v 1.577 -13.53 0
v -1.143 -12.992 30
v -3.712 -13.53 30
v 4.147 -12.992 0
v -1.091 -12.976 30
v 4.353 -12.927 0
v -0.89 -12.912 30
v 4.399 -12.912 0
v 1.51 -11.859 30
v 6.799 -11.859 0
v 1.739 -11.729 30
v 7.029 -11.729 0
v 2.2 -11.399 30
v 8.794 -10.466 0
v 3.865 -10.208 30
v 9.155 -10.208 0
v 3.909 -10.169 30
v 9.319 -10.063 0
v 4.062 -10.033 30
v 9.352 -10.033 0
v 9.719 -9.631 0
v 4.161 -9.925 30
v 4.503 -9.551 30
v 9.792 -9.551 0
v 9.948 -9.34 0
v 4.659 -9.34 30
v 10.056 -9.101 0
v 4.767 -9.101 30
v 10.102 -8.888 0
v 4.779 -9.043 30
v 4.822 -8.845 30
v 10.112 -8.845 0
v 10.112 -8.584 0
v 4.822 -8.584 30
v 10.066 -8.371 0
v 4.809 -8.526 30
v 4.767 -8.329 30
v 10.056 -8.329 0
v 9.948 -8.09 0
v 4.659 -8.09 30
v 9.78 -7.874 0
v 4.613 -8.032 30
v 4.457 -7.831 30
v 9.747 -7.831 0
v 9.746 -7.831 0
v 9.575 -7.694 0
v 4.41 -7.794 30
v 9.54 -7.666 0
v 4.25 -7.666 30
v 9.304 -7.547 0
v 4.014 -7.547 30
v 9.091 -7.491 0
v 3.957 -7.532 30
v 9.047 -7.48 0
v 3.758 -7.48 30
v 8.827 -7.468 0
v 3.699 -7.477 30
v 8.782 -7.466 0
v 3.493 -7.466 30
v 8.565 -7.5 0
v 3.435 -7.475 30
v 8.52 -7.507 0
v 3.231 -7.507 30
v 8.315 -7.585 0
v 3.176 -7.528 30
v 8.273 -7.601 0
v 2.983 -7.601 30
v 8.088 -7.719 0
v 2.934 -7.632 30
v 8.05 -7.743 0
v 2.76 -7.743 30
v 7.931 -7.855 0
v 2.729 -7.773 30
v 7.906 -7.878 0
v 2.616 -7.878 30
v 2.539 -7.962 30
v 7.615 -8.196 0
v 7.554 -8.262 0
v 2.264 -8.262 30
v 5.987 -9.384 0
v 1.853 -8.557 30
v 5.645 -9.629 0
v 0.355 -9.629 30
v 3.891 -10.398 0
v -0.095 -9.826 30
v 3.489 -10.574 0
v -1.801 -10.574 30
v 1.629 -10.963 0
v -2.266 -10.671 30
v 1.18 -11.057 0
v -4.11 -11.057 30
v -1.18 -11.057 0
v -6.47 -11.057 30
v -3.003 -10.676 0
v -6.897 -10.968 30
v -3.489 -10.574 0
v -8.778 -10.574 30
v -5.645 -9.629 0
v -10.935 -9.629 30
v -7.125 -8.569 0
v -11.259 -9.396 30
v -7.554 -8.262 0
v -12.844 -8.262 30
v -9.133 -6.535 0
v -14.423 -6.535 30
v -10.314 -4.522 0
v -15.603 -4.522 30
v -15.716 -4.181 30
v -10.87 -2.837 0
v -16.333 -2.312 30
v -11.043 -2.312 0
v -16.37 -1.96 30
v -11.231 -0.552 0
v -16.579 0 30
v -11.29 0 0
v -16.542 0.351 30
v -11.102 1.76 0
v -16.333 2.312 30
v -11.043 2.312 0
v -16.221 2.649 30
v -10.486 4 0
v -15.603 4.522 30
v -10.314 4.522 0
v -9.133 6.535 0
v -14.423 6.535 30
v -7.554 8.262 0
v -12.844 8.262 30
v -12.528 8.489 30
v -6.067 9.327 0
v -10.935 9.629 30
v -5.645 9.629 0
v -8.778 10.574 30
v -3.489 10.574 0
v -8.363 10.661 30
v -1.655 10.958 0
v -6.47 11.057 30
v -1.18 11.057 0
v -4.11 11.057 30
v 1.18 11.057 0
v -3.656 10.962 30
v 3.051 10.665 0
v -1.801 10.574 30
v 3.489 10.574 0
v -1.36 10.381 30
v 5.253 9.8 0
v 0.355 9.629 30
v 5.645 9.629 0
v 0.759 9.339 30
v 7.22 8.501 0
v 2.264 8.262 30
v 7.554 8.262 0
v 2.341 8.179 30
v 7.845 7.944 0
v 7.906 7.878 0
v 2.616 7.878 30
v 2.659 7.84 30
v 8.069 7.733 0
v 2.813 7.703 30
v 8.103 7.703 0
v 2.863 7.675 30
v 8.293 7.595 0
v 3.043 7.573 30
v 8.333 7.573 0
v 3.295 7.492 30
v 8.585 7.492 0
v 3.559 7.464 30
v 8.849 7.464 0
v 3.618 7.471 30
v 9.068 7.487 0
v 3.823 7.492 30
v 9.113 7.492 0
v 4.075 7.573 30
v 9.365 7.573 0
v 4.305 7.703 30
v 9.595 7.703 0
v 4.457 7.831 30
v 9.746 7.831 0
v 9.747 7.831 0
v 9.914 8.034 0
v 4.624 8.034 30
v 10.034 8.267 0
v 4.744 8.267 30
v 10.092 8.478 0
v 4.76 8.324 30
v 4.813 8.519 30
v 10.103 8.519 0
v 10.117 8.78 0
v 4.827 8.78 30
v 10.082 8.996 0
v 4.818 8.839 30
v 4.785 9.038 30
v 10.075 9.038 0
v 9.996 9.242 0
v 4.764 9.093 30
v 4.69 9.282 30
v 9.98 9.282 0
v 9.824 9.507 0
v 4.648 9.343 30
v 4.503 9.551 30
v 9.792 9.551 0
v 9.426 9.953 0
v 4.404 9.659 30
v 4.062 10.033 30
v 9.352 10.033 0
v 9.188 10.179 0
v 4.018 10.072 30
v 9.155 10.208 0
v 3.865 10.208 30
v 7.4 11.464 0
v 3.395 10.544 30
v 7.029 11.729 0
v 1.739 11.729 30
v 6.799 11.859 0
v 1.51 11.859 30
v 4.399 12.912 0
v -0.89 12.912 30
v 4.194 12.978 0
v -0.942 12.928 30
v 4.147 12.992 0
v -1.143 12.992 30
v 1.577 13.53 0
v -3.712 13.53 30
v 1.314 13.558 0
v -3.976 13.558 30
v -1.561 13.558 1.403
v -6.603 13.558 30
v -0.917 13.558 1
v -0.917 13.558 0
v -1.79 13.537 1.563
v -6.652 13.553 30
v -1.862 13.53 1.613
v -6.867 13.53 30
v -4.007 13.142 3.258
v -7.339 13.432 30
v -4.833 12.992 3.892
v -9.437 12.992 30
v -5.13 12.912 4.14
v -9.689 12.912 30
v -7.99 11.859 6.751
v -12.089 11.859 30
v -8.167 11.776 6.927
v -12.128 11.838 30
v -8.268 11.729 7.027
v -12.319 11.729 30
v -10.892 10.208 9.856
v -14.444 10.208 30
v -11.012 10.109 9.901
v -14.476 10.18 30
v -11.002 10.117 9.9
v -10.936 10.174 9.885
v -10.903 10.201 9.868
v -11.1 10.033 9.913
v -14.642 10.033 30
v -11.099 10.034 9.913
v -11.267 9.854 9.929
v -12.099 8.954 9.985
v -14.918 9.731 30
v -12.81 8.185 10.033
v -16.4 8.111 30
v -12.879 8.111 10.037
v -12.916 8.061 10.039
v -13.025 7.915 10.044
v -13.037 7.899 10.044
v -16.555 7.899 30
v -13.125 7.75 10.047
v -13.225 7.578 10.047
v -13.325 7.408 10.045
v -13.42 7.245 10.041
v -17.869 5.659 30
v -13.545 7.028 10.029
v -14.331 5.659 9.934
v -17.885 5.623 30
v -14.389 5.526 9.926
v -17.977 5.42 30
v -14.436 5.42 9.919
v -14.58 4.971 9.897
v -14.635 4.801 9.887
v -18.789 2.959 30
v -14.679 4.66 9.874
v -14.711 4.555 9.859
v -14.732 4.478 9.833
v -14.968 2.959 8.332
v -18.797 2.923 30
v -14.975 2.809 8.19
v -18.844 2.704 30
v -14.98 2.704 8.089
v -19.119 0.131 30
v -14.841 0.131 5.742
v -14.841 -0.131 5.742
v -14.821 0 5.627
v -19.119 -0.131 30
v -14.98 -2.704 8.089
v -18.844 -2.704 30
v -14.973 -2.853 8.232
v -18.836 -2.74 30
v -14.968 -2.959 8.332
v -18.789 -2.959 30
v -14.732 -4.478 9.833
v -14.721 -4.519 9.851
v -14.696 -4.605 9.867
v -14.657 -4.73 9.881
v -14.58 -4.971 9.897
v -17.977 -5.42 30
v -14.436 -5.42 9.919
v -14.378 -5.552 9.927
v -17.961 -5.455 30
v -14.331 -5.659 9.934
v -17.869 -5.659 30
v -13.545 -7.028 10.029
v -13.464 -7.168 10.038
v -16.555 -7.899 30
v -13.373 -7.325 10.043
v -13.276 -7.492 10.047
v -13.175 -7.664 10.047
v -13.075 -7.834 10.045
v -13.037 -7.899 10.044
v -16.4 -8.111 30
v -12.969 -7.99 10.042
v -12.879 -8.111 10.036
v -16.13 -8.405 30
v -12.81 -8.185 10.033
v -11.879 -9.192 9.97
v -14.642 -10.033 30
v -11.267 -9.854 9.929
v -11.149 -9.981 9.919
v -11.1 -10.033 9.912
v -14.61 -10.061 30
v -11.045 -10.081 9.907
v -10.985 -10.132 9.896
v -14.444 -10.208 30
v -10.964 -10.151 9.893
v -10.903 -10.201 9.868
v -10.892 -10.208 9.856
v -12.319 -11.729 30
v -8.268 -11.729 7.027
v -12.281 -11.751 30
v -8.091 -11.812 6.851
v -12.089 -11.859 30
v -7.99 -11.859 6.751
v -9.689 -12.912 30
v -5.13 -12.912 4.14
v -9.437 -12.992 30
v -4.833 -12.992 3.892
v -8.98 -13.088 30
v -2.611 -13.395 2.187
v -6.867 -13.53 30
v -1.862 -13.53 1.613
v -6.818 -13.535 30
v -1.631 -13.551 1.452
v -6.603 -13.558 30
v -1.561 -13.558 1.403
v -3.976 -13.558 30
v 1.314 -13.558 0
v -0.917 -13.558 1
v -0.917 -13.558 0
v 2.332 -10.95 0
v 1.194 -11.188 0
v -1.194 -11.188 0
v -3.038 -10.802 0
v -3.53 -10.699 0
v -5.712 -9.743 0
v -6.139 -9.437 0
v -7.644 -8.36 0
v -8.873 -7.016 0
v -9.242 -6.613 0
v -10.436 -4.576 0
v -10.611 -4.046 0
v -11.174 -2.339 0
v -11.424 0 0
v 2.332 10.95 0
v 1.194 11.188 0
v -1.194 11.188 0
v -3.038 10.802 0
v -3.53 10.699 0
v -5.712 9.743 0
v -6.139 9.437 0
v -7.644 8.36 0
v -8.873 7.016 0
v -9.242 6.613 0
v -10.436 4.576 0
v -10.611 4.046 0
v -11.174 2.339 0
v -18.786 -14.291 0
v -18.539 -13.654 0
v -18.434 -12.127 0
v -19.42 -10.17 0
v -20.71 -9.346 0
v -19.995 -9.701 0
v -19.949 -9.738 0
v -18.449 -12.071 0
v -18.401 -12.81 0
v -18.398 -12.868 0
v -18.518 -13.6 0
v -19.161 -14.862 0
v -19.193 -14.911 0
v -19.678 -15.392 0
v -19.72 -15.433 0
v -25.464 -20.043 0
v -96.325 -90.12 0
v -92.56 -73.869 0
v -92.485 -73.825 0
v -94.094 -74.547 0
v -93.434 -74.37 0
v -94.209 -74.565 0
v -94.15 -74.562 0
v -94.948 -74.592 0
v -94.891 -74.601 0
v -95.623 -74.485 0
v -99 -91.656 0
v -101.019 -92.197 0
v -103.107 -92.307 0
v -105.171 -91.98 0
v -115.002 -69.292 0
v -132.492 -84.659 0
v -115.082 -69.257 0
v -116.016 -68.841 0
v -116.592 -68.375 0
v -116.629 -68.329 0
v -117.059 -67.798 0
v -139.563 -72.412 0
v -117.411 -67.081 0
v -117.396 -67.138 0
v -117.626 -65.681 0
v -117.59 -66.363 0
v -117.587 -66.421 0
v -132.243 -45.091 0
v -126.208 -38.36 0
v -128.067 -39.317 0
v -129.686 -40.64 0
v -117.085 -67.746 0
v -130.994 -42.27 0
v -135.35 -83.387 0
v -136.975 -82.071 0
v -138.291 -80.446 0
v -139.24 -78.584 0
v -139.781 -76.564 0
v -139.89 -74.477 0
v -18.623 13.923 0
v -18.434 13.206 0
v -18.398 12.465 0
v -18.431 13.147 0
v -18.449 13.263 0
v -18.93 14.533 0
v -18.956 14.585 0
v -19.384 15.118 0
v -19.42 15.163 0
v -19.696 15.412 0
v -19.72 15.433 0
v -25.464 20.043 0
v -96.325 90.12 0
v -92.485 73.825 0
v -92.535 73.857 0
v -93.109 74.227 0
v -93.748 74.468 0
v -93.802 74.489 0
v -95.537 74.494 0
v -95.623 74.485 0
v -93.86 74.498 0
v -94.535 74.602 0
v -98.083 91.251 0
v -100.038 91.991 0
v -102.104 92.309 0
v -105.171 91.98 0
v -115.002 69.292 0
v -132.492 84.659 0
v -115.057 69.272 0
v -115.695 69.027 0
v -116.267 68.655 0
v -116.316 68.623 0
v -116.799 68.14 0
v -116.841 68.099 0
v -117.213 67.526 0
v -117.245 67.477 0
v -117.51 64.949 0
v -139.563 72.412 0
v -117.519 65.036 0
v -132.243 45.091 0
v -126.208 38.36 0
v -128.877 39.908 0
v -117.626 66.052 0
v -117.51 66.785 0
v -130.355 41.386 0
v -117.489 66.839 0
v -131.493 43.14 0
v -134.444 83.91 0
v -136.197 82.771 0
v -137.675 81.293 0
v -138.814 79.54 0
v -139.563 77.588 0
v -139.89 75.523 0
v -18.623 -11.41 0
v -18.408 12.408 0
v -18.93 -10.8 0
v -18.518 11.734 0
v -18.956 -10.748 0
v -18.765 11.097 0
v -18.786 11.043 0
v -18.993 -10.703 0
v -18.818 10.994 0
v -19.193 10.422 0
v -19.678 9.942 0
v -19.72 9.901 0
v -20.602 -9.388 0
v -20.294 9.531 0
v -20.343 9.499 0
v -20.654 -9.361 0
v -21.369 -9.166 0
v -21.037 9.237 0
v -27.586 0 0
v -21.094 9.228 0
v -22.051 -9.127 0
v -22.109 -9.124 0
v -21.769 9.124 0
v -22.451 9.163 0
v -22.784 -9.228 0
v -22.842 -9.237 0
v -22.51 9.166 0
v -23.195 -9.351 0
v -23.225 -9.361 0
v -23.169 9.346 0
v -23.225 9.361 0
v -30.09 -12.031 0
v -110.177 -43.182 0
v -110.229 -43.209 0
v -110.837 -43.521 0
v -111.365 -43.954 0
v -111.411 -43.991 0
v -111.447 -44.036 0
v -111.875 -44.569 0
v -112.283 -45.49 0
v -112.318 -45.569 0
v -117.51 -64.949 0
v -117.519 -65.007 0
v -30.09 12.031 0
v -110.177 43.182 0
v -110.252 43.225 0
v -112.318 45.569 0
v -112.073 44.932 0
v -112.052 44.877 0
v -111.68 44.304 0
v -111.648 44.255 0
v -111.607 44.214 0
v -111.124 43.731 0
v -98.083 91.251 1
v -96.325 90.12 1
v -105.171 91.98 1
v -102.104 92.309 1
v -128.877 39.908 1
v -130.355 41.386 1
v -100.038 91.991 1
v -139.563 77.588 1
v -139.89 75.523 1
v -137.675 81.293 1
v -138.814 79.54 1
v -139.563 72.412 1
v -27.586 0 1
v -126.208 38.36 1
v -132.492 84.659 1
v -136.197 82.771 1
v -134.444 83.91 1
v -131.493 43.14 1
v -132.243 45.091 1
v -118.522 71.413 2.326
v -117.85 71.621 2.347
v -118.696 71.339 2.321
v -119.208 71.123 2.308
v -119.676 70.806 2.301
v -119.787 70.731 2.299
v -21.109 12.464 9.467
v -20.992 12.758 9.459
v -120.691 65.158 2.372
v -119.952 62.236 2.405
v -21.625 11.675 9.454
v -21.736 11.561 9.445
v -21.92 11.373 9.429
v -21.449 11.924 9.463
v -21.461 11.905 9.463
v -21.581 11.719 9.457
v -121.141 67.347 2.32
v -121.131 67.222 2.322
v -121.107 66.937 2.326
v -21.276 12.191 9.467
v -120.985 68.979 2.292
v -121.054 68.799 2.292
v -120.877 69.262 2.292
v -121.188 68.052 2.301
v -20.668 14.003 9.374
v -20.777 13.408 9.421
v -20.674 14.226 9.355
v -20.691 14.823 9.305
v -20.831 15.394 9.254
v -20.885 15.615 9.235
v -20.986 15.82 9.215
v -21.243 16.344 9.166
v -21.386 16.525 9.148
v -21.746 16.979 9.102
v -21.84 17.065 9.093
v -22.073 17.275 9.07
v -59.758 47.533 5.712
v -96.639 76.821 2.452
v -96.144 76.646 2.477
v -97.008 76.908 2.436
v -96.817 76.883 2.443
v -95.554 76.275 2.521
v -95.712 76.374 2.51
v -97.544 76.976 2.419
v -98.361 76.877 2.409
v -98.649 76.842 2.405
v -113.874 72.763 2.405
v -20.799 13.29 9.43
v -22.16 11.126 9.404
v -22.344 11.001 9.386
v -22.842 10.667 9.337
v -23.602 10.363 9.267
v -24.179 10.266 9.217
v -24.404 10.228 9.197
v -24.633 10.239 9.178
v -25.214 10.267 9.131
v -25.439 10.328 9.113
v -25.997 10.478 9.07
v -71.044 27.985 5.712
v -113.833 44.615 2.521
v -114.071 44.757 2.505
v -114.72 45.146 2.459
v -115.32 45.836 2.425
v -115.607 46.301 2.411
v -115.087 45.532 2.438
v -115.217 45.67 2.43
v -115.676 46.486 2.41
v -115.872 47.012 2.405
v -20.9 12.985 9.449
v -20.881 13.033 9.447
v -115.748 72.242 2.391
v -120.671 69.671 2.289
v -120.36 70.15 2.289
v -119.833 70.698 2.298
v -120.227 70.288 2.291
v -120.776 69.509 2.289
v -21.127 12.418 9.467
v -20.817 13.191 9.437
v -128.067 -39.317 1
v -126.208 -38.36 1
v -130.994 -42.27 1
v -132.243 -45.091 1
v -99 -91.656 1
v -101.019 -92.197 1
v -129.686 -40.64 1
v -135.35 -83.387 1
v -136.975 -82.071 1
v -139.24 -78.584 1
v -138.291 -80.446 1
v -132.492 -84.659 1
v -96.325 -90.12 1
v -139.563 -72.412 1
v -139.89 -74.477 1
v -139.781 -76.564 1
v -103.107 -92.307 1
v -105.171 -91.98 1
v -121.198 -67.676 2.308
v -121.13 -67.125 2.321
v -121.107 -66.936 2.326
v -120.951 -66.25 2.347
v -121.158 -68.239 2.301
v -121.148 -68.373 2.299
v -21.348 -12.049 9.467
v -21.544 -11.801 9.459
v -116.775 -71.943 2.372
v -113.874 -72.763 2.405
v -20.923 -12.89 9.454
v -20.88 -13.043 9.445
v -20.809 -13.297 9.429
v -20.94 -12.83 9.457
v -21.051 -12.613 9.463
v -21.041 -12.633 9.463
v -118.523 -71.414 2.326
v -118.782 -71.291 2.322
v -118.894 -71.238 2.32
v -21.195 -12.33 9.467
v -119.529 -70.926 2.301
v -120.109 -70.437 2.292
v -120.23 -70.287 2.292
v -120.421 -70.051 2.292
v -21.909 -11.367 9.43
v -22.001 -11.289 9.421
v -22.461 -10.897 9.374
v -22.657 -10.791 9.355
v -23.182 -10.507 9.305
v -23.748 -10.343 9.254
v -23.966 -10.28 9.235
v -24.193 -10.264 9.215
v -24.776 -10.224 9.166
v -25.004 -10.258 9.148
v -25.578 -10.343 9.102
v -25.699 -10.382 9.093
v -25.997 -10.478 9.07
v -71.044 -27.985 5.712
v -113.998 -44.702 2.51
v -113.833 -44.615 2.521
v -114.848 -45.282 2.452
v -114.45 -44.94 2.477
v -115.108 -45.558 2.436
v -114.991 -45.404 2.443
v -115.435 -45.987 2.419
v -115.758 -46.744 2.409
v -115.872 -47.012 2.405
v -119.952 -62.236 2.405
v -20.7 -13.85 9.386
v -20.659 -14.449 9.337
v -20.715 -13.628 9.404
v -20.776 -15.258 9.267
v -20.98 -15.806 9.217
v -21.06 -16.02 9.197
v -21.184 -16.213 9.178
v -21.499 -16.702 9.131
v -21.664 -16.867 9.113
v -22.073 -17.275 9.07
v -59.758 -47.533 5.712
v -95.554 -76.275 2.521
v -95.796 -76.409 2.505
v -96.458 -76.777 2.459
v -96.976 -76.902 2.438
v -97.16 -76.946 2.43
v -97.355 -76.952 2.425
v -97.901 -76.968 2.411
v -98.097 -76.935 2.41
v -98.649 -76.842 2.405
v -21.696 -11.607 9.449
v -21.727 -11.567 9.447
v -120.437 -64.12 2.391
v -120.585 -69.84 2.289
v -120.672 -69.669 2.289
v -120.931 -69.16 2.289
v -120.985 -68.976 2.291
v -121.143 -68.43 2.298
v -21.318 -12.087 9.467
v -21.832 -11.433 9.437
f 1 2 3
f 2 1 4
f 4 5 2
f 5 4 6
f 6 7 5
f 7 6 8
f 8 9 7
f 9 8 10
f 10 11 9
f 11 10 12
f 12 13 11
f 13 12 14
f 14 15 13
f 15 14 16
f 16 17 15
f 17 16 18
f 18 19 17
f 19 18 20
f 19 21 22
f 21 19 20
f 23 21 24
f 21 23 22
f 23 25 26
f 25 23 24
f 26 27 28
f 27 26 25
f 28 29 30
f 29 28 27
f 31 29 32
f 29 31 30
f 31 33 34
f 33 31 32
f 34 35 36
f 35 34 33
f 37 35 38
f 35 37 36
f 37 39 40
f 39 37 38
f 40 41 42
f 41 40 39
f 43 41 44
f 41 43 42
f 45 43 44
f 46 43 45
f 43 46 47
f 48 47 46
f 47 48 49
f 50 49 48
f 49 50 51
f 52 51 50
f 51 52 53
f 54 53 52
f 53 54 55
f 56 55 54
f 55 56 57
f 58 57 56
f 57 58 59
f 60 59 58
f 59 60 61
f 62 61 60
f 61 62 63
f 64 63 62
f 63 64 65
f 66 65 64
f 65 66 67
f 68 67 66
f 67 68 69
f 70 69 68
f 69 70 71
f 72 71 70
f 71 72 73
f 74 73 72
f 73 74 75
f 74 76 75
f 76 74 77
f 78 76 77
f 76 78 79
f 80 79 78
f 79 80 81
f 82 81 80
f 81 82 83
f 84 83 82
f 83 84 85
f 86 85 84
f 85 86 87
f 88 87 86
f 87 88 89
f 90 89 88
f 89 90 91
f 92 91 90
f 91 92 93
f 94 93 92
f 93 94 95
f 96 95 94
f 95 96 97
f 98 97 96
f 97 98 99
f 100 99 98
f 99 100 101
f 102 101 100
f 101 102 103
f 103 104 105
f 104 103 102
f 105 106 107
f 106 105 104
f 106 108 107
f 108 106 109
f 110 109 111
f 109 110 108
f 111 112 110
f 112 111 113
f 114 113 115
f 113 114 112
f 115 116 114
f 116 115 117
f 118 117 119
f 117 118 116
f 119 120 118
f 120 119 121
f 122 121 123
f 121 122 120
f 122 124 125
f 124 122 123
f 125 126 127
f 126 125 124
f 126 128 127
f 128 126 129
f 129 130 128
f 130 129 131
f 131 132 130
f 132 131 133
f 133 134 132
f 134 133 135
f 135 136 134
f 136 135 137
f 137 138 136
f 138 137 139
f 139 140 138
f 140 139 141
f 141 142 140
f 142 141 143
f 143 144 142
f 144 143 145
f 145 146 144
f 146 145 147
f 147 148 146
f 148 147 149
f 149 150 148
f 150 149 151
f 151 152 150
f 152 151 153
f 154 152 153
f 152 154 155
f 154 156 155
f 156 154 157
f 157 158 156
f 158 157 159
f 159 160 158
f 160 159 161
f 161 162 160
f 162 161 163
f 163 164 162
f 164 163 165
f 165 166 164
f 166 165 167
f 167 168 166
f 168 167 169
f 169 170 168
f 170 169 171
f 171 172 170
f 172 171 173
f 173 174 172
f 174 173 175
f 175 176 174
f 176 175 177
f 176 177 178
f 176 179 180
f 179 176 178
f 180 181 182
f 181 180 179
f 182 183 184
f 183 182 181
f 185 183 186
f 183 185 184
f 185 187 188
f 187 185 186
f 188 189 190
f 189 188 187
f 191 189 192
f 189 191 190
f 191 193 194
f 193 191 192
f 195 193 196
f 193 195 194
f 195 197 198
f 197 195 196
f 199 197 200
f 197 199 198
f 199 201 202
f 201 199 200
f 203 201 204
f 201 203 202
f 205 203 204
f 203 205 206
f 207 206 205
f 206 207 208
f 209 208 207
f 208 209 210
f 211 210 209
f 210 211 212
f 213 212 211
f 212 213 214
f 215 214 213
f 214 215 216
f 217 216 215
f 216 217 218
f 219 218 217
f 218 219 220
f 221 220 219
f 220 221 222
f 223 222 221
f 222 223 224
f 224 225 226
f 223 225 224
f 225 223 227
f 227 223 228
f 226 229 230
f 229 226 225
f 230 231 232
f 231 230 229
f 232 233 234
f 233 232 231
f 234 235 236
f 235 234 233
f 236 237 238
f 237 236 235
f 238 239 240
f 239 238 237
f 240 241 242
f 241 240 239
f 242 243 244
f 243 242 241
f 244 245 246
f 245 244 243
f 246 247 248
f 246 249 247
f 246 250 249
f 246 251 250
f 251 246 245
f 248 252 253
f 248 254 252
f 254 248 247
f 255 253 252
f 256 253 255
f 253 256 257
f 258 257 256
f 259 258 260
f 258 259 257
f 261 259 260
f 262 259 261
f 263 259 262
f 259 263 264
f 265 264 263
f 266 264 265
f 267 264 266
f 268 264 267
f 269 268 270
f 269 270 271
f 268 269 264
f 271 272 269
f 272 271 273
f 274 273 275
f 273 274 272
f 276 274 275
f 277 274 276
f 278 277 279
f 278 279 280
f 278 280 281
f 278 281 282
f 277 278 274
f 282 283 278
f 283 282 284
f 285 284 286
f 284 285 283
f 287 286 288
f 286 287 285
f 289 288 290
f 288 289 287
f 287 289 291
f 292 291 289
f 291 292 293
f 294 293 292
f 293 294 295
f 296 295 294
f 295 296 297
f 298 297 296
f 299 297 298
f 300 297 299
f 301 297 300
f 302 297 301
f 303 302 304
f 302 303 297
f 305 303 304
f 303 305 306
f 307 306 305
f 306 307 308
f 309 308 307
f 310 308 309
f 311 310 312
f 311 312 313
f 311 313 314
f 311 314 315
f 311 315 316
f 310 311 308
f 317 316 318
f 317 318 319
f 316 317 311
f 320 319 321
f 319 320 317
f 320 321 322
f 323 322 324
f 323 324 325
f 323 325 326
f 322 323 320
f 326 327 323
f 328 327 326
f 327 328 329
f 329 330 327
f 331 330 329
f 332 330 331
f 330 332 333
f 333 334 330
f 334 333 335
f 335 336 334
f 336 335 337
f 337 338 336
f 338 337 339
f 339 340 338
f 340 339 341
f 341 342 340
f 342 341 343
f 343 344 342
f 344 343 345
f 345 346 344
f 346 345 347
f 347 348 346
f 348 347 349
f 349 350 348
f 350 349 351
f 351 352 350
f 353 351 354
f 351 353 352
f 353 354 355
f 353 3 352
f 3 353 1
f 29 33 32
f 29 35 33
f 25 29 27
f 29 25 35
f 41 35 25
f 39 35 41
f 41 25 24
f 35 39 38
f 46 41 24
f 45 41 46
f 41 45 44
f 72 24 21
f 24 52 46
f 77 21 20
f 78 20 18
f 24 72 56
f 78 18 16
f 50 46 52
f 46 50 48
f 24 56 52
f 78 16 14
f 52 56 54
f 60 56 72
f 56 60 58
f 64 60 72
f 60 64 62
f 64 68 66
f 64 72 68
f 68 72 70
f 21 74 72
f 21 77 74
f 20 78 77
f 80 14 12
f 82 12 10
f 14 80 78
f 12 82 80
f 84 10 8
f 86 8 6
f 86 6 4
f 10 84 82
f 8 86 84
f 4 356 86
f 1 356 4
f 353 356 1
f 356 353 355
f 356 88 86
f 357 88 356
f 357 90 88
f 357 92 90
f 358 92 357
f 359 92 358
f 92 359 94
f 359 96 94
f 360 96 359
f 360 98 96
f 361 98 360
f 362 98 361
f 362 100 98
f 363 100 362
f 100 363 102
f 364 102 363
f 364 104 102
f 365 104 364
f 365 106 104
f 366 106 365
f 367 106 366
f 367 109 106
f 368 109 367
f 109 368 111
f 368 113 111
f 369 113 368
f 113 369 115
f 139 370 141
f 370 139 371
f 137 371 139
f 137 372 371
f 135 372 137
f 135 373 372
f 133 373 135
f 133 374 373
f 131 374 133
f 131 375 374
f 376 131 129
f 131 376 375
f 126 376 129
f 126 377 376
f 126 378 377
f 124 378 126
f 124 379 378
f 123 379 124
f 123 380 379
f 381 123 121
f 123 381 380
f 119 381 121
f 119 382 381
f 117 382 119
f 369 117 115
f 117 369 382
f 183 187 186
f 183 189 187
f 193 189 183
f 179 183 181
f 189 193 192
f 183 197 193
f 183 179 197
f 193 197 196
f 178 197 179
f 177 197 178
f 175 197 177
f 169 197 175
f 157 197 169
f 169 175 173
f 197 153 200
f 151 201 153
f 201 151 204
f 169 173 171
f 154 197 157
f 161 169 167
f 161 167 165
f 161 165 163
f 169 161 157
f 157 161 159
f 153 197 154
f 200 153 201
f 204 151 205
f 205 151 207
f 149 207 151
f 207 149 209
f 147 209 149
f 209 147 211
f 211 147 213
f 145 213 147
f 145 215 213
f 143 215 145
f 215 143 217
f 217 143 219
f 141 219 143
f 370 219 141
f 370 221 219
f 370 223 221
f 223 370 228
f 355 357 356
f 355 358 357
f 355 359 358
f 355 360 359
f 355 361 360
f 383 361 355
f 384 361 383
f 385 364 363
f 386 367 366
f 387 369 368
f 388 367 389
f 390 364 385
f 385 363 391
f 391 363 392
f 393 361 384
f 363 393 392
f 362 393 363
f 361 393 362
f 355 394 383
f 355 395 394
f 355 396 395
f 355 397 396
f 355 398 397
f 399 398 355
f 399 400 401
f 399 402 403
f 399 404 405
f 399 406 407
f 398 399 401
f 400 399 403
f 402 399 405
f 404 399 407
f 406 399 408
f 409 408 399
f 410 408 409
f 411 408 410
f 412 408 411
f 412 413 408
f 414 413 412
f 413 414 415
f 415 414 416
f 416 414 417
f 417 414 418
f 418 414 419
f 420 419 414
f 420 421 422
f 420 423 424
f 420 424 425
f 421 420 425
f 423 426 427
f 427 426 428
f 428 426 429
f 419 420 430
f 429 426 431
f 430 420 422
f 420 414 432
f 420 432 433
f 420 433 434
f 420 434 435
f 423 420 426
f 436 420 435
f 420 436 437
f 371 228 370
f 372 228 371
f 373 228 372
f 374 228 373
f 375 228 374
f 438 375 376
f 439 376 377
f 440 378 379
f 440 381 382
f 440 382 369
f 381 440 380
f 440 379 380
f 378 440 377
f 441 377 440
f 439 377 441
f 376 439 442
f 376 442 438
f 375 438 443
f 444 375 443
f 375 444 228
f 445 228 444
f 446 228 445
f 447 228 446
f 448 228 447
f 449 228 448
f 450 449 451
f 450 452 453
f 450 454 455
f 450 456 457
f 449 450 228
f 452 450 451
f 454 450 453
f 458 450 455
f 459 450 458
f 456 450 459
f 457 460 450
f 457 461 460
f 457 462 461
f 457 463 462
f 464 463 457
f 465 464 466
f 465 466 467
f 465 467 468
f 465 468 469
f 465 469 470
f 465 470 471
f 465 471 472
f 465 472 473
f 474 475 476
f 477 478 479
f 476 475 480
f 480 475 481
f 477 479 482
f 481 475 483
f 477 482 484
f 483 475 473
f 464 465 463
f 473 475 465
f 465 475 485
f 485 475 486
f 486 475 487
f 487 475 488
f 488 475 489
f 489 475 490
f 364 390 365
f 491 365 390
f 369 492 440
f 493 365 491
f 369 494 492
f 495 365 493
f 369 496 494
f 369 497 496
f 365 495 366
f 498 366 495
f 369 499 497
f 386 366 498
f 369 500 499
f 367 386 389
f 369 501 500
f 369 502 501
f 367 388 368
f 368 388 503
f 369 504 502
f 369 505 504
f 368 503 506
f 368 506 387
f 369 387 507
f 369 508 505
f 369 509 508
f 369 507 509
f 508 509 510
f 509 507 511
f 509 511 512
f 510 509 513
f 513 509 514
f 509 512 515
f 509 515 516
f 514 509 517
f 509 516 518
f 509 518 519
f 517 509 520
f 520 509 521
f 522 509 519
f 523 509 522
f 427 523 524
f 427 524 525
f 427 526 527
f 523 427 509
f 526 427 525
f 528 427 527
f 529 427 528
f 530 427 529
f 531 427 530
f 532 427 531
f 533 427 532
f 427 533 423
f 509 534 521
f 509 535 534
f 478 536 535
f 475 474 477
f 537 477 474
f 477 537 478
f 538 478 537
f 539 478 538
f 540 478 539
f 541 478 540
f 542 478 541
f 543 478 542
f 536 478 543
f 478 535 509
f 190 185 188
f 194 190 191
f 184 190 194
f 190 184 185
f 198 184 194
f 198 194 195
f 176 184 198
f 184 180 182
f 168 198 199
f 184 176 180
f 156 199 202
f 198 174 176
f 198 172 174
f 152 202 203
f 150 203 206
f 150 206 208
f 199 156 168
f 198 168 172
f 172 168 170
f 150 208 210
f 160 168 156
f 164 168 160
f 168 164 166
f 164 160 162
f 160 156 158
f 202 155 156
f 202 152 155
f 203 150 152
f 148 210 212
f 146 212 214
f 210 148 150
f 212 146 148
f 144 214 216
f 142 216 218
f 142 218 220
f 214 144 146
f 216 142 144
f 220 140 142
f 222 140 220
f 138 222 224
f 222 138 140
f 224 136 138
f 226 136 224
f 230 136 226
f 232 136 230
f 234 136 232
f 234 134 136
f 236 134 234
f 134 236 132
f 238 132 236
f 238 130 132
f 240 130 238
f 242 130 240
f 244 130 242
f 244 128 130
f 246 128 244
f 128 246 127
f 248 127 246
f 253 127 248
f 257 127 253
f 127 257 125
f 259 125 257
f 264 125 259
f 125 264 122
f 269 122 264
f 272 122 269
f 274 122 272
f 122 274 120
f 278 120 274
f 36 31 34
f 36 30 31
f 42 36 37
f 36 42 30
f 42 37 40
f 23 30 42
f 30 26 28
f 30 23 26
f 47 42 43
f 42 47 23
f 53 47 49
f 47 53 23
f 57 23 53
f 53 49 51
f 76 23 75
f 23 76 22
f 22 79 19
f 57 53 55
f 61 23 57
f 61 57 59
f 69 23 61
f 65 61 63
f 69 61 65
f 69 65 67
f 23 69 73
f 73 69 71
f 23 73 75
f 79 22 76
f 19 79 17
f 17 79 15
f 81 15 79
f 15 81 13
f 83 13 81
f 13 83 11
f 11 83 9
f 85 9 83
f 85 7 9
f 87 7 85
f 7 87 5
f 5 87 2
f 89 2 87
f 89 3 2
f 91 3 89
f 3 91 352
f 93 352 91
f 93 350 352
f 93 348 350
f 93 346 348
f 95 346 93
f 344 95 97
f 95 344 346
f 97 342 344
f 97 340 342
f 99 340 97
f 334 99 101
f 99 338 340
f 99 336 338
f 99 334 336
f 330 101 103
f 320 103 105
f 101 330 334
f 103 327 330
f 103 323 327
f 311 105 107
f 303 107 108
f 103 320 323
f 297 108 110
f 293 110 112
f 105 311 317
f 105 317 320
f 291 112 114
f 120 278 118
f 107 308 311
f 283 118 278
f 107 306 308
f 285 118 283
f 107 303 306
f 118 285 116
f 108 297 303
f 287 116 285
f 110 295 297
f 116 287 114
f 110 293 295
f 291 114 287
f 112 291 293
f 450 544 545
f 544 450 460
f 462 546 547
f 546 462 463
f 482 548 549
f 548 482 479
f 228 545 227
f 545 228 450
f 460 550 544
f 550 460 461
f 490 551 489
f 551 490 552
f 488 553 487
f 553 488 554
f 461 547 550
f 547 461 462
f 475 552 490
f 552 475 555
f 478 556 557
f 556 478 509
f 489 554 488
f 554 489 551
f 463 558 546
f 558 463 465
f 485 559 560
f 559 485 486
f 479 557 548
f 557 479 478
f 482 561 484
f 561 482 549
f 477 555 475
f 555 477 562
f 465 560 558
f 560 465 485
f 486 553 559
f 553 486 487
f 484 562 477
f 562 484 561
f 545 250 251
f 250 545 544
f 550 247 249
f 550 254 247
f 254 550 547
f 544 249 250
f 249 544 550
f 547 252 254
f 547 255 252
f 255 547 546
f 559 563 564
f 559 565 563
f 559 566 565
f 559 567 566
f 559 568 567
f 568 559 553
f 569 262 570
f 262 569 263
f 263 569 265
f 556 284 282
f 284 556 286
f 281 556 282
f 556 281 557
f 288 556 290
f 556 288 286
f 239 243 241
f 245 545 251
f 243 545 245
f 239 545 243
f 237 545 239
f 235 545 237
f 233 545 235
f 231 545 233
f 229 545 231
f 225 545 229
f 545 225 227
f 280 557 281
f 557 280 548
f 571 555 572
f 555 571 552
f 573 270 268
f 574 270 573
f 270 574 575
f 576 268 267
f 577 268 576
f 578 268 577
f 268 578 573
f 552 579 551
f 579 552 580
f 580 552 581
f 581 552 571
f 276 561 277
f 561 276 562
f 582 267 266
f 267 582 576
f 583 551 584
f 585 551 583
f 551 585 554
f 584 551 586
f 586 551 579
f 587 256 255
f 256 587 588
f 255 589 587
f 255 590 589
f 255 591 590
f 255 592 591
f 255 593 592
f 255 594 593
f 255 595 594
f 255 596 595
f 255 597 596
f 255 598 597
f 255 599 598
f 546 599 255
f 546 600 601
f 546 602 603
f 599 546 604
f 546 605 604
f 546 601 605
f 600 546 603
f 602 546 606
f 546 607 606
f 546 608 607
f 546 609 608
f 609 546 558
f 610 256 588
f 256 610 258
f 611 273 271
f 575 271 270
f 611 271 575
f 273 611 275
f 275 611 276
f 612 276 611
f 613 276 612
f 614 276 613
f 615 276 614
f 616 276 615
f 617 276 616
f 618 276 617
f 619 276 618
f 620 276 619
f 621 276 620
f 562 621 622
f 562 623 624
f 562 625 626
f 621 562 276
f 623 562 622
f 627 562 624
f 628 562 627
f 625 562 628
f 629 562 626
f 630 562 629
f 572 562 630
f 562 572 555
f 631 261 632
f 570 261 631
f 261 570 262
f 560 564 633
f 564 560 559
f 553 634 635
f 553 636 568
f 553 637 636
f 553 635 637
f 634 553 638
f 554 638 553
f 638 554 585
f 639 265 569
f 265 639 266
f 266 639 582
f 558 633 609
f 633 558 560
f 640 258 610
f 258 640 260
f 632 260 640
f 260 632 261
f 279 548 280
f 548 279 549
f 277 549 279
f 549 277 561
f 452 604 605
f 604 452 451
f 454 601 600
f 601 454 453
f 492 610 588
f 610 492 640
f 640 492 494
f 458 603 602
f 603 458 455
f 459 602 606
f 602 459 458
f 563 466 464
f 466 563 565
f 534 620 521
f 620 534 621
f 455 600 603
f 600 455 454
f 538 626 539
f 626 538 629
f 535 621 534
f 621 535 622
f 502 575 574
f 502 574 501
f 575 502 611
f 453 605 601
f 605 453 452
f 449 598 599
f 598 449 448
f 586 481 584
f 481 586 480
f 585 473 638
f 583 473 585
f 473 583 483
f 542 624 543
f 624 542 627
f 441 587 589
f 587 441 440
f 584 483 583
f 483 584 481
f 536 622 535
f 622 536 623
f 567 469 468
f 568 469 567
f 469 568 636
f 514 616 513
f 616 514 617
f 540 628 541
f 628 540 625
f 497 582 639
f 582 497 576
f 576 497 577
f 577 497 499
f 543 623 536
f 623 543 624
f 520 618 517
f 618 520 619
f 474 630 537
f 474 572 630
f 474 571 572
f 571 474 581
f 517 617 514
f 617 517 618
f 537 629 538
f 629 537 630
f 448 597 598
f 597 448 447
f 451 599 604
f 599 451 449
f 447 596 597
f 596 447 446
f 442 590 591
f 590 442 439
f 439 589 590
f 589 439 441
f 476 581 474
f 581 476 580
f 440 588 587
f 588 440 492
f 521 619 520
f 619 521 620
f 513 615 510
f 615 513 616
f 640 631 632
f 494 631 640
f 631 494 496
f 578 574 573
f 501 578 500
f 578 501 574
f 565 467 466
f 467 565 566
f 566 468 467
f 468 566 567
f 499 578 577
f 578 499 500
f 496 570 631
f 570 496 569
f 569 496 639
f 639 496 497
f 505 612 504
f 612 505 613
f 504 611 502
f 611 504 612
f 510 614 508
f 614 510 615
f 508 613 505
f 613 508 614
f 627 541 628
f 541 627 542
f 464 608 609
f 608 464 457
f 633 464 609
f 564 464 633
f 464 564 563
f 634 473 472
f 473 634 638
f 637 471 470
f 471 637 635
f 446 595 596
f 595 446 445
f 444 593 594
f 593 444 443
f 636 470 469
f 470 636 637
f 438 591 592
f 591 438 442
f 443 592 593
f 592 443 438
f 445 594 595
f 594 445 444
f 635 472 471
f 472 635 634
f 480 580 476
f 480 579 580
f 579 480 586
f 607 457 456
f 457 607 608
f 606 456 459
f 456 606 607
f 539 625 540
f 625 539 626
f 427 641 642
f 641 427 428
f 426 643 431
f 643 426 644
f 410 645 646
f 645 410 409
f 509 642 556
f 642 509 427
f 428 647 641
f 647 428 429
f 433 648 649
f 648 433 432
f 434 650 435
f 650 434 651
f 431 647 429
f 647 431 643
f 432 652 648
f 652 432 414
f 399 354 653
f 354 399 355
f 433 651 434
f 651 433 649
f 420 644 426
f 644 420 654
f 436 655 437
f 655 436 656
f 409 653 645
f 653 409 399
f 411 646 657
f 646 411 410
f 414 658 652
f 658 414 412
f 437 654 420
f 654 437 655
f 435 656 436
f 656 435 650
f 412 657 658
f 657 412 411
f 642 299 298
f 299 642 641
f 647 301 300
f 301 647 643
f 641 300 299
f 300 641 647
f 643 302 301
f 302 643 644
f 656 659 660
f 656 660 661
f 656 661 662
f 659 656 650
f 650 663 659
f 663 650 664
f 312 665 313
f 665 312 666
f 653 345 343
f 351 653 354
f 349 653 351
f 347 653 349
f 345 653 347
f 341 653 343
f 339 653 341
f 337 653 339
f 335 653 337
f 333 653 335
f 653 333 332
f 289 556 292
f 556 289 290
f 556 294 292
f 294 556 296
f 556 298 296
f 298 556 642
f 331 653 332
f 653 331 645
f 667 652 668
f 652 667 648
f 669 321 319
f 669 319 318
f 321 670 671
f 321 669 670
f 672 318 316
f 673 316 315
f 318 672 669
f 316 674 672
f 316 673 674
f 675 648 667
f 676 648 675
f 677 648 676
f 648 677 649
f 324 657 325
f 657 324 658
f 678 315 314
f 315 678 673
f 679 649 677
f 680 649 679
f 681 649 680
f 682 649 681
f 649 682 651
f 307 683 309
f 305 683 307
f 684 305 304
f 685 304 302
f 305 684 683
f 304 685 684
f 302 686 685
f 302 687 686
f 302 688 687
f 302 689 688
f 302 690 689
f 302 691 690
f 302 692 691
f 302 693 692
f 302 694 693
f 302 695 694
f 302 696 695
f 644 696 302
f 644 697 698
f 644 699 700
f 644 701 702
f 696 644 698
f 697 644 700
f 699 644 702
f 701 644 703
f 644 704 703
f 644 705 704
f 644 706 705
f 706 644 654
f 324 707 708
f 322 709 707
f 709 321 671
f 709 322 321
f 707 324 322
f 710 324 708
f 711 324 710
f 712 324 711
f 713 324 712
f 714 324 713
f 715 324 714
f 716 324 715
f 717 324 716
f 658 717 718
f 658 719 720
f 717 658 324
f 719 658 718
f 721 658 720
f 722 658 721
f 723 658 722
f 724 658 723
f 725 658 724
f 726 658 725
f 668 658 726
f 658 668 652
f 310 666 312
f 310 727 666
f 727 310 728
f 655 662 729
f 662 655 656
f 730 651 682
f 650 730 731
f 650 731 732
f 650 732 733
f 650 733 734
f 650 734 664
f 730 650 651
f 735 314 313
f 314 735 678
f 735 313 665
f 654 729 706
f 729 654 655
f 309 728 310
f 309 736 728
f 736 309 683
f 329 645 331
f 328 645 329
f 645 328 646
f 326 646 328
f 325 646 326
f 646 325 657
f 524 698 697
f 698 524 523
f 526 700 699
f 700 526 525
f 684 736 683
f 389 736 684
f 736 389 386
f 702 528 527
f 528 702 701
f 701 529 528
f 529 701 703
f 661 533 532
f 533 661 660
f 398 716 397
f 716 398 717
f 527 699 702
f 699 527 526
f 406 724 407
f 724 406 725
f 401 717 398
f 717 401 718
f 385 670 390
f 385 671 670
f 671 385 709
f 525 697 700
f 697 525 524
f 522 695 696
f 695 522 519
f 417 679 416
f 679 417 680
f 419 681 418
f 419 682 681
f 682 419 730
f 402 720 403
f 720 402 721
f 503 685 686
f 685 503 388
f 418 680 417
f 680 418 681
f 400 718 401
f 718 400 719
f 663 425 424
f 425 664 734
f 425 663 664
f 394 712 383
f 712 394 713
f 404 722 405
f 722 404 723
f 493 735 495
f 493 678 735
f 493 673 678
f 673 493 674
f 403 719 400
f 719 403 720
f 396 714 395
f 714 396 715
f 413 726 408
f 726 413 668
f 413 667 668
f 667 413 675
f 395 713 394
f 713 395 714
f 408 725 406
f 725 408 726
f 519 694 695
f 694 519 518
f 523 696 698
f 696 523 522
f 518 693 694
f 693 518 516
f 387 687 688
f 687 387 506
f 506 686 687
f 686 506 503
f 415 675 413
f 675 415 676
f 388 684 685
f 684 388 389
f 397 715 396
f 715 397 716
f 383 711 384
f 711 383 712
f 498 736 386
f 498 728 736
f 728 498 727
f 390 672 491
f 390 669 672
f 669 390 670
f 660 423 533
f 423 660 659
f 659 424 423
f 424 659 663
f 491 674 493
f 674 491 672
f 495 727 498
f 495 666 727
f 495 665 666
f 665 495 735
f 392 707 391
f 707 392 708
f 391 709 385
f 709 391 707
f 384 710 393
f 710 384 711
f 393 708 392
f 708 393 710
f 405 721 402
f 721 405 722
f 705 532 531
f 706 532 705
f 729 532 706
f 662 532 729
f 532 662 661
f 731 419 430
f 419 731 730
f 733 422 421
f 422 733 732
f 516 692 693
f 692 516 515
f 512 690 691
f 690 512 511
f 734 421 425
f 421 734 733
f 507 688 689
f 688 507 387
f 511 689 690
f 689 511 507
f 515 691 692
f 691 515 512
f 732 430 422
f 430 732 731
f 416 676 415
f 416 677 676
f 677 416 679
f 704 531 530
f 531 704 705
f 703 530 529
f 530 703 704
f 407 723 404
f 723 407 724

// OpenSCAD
tolerance = .25;

module tube(d, o, h) {
    linear_extrude(height = h) {
        offset(r = o / 2) {
            difference() {
                circle(d = d + o + tolerance + .001);
                circle(d = d + o + tolerance);
                rotate([0, 0, -45]) square(100);
            }
        }
    }
}

angle = -10;

module obj() {
    difference() {
        rotate([0, angle, 0]) translate([0, 0, -10]) tube(d = 22, o = 2.5, h = 50);
        translate([0, 0, -10]) cube([100, 100, 20], center = true);
        translate([0, 0, 40]) cube([100, 100, 20], center = true);
    }
}

module leg_base(offset = 10) {
    offset(offset)
    polygon([[0, 0], [130, -20], [150, 0], [130, 20]]);
}

module leg() {
    difference() {
        union() {
            linear_extrude(height = 1, scale = 1)
            leg_base();
            translate([0, 0, 1])
            linear_extrude(height = 10, scale = 0)
            leg_base();
        }
        translate([0, 0, -1]) linear_extrude(height = 15, scale = 1.2)
        translate([25, 0, 0]) scale([.7, .7, 1]) leg_base(5);
    }
}

$fn = 30;

o = 2;

obj();
difference() {
    union() {
        rotate([0, 0, -210]) leg();
        rotate([0, 0, 210]) leg();
    }
    rotate([0, angle, 0]) translate([0, 0, -10]) cylinder(d = 22 + tolerance * 2, h = 50);
}
//rotate([0, 0, -220]) leg();
//rotate([0, 0, 220]) leg();

//obj();

// translate([10, -50, 0]) hook();
